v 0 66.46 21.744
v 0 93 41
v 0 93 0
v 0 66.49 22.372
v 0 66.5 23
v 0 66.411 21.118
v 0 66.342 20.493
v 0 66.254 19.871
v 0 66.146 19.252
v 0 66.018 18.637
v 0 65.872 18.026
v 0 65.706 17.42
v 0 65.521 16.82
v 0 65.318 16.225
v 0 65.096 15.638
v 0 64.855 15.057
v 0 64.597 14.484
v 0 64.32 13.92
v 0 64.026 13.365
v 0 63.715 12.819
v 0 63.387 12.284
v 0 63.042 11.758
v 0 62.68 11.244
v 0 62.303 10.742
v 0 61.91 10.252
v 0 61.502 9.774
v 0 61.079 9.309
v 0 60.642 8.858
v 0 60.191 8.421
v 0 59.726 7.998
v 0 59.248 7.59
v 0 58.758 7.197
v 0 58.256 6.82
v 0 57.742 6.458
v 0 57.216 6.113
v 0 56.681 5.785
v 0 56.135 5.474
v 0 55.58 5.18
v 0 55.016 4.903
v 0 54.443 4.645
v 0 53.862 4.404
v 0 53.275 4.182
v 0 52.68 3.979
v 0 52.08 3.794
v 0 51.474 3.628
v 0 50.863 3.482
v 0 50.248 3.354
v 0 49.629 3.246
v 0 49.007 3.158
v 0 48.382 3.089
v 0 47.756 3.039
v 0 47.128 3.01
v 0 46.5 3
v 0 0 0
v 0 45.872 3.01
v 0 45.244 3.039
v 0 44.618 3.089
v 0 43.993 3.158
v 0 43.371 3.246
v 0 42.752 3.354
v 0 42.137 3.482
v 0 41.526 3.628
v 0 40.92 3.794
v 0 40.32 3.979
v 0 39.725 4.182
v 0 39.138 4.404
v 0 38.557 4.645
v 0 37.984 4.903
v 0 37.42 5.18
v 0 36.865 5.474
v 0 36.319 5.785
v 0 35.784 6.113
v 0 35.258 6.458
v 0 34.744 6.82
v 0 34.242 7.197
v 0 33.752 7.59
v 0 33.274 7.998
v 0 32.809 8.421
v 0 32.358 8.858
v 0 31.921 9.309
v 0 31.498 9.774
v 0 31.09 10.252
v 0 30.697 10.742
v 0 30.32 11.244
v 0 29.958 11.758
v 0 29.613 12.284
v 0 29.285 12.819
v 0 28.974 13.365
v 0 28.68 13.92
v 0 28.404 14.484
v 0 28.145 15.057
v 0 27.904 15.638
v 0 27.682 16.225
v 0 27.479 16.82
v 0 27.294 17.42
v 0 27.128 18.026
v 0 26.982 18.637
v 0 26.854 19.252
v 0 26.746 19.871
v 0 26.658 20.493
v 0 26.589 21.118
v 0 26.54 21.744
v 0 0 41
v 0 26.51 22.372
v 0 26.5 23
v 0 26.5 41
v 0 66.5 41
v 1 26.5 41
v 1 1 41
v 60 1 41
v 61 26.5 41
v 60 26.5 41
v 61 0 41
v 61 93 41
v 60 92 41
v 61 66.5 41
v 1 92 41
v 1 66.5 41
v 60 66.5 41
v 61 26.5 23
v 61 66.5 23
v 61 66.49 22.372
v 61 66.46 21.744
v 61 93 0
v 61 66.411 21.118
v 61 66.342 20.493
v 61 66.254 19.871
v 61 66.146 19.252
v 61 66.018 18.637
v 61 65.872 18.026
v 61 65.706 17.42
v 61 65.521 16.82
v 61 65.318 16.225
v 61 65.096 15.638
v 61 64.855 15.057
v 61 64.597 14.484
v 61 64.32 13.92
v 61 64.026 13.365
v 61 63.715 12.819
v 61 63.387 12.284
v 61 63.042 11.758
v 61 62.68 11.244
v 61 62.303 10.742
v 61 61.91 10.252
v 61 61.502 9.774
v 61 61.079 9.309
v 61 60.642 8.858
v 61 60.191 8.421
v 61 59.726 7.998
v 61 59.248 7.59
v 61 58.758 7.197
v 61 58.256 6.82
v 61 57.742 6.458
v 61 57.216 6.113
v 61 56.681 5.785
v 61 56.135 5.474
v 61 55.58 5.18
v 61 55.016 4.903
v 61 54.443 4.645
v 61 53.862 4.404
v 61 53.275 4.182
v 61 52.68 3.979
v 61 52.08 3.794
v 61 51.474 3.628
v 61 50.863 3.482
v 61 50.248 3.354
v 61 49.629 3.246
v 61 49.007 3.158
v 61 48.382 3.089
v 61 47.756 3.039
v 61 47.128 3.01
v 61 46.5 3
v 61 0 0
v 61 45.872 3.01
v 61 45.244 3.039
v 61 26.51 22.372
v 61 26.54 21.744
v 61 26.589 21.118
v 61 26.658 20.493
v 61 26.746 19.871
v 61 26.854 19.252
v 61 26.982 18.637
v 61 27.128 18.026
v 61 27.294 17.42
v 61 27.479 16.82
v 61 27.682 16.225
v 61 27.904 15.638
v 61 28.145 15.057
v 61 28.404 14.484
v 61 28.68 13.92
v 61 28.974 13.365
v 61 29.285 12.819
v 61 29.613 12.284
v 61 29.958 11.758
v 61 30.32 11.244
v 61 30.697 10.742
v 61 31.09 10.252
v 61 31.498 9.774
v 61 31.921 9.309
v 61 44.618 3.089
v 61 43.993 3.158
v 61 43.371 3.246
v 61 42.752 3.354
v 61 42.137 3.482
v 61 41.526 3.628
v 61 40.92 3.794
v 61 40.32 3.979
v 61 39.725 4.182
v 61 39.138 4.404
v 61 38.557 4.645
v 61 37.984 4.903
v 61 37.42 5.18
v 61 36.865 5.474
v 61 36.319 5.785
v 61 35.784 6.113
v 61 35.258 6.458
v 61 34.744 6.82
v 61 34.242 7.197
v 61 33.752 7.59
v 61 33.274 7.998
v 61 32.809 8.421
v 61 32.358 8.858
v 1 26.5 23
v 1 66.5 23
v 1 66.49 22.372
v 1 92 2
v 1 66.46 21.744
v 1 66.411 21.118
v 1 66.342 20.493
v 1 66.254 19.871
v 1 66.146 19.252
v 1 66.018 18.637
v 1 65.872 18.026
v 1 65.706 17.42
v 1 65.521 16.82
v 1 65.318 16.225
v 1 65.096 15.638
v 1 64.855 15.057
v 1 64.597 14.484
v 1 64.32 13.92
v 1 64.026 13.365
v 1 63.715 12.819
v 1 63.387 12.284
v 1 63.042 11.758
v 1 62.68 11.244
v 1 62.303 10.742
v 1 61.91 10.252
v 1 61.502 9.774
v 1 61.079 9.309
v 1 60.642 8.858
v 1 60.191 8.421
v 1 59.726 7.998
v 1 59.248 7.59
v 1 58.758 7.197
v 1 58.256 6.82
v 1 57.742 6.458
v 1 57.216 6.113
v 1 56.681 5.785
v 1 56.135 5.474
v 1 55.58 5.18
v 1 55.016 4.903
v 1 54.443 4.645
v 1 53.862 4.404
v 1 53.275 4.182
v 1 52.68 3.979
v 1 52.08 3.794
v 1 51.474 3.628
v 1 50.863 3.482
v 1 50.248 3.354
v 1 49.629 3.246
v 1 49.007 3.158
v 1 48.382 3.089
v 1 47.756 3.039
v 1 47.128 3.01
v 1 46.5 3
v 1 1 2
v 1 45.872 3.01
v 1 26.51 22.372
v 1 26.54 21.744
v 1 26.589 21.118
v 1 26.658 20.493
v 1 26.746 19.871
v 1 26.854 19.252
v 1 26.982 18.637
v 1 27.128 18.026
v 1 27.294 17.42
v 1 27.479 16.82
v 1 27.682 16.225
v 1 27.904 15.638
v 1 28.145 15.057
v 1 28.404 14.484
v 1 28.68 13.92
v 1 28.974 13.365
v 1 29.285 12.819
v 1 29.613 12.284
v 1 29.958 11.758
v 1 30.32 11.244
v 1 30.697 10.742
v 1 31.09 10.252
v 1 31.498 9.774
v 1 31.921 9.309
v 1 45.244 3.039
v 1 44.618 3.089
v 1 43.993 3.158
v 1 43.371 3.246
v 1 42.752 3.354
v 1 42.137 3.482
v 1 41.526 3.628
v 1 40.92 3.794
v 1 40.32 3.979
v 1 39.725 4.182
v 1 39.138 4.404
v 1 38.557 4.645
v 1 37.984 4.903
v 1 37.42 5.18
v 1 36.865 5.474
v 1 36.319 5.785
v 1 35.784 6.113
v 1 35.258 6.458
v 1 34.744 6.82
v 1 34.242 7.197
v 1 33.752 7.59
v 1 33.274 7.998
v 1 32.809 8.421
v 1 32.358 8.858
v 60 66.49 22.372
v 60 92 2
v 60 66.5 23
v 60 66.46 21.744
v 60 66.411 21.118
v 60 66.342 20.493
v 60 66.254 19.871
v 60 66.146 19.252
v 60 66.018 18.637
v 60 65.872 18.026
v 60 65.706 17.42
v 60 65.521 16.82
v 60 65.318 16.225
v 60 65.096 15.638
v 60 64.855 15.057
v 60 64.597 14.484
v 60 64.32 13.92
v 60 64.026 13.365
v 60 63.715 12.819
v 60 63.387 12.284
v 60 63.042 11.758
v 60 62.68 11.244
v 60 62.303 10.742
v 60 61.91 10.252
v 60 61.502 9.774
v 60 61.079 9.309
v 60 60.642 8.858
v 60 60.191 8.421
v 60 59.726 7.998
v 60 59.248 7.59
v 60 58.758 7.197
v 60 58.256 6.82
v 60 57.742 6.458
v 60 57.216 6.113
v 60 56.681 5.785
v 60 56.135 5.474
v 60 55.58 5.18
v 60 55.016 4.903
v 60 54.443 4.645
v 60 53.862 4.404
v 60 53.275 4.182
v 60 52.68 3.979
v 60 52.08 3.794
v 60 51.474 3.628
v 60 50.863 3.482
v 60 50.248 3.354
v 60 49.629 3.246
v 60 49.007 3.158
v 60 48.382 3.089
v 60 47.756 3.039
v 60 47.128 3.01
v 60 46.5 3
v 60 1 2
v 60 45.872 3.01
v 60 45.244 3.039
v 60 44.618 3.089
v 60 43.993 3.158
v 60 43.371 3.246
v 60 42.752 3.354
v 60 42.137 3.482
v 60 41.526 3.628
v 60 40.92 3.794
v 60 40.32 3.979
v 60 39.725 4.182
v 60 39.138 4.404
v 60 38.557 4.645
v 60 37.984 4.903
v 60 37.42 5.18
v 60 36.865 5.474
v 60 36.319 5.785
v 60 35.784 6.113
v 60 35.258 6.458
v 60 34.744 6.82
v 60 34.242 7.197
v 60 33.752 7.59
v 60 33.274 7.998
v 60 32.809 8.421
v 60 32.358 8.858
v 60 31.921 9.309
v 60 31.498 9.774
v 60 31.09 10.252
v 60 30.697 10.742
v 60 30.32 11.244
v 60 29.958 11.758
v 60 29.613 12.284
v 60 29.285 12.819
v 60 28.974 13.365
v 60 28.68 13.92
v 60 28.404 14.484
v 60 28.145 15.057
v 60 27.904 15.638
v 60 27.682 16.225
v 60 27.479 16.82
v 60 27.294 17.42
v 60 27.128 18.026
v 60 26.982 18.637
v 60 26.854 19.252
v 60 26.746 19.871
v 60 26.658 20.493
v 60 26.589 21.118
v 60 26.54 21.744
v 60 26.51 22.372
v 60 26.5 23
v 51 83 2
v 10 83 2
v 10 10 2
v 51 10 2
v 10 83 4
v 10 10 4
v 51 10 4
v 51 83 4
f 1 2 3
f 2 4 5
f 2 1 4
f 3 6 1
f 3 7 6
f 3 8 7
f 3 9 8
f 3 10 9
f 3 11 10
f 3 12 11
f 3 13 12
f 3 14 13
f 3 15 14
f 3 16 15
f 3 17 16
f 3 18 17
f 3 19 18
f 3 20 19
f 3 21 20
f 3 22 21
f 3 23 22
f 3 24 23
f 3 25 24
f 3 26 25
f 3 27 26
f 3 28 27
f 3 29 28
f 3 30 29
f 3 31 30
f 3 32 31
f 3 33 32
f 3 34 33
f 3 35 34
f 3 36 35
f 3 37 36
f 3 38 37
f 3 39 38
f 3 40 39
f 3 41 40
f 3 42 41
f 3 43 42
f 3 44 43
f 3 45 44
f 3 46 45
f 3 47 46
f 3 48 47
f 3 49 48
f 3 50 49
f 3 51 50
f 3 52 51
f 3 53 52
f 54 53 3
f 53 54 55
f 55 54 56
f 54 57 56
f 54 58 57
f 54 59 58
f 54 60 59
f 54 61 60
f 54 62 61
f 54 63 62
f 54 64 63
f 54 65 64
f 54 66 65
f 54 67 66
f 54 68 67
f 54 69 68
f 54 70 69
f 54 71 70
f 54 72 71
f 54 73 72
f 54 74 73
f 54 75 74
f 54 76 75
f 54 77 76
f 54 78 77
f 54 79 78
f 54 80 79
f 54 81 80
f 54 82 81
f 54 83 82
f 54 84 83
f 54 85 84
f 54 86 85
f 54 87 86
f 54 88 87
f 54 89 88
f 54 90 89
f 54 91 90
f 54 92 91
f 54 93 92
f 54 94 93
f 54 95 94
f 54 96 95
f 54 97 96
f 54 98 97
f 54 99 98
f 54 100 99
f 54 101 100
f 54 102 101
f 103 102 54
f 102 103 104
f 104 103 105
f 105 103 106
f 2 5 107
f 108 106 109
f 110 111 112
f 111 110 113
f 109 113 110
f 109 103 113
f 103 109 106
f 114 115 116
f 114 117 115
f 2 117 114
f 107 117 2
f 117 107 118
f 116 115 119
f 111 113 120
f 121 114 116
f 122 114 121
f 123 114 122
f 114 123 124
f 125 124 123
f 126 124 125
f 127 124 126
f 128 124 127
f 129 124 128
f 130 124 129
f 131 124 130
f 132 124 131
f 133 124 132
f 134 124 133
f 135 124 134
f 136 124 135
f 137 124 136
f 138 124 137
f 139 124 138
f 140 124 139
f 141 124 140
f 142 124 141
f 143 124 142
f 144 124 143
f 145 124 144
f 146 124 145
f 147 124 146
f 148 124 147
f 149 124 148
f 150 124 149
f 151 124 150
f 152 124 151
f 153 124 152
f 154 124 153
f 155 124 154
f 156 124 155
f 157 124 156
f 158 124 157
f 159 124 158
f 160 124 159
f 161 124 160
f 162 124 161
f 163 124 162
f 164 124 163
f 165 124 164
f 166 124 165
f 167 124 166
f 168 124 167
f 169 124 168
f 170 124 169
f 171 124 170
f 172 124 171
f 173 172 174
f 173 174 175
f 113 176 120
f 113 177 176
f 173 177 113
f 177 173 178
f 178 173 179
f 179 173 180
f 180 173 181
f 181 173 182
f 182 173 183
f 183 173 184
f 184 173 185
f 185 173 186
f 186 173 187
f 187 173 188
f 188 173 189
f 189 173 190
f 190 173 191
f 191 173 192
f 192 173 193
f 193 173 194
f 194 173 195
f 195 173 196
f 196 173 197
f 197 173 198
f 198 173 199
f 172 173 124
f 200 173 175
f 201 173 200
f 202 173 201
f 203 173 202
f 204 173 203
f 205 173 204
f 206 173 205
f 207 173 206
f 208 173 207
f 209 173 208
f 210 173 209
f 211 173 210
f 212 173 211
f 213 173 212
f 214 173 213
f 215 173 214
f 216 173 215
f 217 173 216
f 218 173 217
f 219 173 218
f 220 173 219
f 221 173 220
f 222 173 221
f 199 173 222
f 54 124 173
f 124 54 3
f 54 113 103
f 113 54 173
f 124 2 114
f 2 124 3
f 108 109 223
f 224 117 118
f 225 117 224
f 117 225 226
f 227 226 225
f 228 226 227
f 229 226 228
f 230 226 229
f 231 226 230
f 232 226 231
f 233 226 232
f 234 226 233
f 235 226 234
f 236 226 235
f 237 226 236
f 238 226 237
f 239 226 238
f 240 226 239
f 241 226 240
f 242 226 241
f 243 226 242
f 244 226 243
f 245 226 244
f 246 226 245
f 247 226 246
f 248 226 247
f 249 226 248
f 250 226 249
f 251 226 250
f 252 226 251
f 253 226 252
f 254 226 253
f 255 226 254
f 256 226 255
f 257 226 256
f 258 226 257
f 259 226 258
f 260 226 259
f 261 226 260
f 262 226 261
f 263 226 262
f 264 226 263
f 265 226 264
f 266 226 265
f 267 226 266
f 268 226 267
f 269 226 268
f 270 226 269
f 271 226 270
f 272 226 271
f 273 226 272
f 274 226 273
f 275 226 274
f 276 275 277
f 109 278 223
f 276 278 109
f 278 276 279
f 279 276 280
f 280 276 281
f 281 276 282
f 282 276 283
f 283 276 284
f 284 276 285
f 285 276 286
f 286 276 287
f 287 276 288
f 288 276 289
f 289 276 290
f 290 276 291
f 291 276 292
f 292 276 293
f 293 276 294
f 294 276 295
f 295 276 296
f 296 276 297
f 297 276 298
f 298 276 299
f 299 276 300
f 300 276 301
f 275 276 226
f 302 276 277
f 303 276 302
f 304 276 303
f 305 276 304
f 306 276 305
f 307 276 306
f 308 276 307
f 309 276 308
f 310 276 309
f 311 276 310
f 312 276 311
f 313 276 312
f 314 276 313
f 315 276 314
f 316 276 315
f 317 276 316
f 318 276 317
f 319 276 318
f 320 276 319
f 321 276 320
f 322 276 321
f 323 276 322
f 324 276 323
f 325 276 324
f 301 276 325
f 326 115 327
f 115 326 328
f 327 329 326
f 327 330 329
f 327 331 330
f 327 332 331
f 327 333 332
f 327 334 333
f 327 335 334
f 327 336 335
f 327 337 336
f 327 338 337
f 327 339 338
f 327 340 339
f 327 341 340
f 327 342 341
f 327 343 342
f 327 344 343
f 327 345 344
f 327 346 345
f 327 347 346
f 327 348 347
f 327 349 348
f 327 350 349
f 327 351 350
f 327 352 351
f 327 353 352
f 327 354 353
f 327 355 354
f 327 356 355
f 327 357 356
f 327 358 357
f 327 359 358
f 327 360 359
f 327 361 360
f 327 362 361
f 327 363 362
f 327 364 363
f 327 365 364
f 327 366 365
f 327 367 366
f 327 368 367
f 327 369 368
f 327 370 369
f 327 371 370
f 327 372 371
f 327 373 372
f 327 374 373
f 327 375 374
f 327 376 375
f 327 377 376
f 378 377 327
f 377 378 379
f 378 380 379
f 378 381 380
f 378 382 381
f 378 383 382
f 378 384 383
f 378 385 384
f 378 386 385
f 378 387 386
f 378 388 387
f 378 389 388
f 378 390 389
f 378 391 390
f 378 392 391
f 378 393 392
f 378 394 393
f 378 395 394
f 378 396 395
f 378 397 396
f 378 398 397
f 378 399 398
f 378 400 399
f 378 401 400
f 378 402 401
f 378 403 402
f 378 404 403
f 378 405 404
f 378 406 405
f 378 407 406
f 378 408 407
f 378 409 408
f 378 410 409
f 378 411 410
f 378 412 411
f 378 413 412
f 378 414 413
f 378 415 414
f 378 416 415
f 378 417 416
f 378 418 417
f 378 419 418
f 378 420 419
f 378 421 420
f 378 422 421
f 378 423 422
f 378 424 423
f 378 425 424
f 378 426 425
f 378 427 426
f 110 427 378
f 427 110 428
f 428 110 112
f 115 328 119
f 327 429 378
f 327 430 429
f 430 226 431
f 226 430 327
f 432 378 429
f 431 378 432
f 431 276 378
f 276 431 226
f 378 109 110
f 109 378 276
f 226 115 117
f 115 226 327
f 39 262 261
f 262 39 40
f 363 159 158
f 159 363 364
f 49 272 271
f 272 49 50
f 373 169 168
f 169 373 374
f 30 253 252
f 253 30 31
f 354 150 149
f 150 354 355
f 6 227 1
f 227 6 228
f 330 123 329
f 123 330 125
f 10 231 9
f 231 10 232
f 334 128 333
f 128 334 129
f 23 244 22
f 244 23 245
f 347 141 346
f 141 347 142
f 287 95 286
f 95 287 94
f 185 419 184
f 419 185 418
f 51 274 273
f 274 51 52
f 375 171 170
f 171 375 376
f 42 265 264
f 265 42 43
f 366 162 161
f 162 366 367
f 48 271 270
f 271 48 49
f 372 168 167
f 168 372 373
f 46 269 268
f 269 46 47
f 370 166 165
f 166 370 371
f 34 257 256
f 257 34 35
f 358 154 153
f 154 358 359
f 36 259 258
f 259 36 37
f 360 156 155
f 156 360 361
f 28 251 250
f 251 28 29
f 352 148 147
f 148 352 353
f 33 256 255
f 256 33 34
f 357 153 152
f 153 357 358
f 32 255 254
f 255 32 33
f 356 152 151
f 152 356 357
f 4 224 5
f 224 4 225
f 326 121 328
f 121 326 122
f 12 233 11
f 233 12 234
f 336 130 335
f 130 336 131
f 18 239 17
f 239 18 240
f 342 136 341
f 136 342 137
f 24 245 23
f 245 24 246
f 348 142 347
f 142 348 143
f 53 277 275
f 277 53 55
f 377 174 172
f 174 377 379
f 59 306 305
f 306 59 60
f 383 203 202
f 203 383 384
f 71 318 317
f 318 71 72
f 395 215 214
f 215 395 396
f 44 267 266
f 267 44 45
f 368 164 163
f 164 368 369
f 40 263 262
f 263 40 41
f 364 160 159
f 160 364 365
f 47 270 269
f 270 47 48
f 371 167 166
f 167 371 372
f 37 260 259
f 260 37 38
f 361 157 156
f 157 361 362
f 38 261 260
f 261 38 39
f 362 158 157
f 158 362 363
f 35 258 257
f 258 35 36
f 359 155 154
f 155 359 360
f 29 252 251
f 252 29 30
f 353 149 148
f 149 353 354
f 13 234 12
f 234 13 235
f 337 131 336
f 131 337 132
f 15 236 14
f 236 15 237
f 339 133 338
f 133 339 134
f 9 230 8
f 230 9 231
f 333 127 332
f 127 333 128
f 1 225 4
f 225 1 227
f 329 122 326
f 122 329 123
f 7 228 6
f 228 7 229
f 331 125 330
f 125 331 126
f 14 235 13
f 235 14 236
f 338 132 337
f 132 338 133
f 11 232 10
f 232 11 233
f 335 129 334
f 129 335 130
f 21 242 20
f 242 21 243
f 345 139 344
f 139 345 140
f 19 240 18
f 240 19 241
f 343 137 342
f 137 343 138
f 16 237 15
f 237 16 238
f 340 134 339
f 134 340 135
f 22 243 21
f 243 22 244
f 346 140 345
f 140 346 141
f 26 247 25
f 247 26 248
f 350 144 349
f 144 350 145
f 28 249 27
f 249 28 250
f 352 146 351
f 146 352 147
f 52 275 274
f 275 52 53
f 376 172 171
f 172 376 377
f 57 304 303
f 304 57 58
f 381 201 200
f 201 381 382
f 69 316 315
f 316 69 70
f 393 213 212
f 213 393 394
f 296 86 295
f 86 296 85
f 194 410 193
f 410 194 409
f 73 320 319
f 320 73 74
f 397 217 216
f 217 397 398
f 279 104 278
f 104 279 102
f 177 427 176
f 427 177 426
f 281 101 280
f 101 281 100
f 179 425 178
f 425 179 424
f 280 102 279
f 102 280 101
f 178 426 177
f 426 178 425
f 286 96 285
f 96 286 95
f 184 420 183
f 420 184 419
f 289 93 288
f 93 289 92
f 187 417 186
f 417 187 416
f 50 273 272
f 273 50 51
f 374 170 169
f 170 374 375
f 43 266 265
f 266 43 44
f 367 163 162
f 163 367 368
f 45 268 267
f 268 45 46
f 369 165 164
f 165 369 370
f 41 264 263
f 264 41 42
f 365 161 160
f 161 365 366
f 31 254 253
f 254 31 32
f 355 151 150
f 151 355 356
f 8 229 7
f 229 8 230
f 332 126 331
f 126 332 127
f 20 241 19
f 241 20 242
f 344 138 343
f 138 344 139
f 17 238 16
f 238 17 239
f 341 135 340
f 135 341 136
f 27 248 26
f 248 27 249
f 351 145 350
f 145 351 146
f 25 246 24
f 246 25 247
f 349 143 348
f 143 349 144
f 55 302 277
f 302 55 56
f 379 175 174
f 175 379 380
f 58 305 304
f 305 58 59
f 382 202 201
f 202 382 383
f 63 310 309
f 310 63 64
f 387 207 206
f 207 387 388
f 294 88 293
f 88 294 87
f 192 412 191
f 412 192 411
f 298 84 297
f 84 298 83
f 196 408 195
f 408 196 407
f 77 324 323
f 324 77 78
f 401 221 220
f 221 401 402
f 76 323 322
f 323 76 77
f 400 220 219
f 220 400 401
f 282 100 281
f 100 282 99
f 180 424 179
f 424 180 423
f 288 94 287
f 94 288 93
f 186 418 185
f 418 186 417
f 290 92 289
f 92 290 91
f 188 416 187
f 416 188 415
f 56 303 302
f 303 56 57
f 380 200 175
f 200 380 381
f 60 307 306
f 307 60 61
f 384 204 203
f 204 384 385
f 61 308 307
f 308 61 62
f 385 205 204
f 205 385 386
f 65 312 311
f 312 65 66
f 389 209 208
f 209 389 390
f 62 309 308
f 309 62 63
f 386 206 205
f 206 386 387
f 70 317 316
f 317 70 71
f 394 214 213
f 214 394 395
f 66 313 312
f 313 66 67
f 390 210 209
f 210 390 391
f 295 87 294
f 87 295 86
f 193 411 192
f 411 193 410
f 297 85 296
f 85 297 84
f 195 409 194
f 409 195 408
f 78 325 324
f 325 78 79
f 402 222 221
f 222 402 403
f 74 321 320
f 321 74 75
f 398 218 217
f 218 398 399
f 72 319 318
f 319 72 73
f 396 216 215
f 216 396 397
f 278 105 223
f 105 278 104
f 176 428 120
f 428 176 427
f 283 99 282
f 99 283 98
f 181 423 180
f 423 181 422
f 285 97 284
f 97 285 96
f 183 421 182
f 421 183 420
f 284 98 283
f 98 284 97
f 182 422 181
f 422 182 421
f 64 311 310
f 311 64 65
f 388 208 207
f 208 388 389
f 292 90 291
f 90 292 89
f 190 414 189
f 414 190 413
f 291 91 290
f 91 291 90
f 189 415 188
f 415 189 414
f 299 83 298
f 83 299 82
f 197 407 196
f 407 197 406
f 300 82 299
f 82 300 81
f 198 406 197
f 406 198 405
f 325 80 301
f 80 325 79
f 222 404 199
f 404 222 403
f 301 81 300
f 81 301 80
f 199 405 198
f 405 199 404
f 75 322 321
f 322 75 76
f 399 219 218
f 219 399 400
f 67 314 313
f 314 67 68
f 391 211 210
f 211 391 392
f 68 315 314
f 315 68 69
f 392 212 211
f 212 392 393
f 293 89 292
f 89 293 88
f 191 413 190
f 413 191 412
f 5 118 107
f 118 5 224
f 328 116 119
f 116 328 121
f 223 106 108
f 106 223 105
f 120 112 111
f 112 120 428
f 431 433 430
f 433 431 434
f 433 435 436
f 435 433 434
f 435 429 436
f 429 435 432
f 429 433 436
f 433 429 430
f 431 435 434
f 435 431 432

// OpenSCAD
$fn=200;

THICK = 1;

CARD_L = 91;
CARD_W = 59;
CARD_STACK = 36;

STUMP = 3;
STUMP_MARGIN = 10;

BOX_W = CARD_W + (THICK * 2);
BOX_L = CARD_L + (THICK * 2);
BOX_H = CARD_STACK + (THICK * 2) + STUMP;

translate([
    STUMP_MARGIN, 
    STUMP_MARGIN, 
    THICK]) {
        
    cube(size = [
        BOX_W - (STUMP_MARGIN * 2),
        BOX_L - (STUMP_MARGIN * 2), 
        STUMP]);
}


difference() {
    cube(size = [
        BOX_W,
        BOX_L, 
        BOX_H]);

    translate([
        THICK, 
        THICK, 
        BOX_H - CARD_STACK - STUMP]) {
            
        cube(size = [
            CARD_W,
            CARD_L,
            CARD_STACK + STUMP + 1]);
    }

    translate([
        -1,
        BOX_L / 2,
        20 + STUMP]) {

        rotate([0, 90, 0]) {
            cylinder(
                h = 1000,
                r = 20);
        }
    }

    translate([
        -1, 
        (BOX_L / 2) - 20, 
        20 + STUMP]) {
            
        cube(size = [
            150,
            40,
            80]);
    }

}
